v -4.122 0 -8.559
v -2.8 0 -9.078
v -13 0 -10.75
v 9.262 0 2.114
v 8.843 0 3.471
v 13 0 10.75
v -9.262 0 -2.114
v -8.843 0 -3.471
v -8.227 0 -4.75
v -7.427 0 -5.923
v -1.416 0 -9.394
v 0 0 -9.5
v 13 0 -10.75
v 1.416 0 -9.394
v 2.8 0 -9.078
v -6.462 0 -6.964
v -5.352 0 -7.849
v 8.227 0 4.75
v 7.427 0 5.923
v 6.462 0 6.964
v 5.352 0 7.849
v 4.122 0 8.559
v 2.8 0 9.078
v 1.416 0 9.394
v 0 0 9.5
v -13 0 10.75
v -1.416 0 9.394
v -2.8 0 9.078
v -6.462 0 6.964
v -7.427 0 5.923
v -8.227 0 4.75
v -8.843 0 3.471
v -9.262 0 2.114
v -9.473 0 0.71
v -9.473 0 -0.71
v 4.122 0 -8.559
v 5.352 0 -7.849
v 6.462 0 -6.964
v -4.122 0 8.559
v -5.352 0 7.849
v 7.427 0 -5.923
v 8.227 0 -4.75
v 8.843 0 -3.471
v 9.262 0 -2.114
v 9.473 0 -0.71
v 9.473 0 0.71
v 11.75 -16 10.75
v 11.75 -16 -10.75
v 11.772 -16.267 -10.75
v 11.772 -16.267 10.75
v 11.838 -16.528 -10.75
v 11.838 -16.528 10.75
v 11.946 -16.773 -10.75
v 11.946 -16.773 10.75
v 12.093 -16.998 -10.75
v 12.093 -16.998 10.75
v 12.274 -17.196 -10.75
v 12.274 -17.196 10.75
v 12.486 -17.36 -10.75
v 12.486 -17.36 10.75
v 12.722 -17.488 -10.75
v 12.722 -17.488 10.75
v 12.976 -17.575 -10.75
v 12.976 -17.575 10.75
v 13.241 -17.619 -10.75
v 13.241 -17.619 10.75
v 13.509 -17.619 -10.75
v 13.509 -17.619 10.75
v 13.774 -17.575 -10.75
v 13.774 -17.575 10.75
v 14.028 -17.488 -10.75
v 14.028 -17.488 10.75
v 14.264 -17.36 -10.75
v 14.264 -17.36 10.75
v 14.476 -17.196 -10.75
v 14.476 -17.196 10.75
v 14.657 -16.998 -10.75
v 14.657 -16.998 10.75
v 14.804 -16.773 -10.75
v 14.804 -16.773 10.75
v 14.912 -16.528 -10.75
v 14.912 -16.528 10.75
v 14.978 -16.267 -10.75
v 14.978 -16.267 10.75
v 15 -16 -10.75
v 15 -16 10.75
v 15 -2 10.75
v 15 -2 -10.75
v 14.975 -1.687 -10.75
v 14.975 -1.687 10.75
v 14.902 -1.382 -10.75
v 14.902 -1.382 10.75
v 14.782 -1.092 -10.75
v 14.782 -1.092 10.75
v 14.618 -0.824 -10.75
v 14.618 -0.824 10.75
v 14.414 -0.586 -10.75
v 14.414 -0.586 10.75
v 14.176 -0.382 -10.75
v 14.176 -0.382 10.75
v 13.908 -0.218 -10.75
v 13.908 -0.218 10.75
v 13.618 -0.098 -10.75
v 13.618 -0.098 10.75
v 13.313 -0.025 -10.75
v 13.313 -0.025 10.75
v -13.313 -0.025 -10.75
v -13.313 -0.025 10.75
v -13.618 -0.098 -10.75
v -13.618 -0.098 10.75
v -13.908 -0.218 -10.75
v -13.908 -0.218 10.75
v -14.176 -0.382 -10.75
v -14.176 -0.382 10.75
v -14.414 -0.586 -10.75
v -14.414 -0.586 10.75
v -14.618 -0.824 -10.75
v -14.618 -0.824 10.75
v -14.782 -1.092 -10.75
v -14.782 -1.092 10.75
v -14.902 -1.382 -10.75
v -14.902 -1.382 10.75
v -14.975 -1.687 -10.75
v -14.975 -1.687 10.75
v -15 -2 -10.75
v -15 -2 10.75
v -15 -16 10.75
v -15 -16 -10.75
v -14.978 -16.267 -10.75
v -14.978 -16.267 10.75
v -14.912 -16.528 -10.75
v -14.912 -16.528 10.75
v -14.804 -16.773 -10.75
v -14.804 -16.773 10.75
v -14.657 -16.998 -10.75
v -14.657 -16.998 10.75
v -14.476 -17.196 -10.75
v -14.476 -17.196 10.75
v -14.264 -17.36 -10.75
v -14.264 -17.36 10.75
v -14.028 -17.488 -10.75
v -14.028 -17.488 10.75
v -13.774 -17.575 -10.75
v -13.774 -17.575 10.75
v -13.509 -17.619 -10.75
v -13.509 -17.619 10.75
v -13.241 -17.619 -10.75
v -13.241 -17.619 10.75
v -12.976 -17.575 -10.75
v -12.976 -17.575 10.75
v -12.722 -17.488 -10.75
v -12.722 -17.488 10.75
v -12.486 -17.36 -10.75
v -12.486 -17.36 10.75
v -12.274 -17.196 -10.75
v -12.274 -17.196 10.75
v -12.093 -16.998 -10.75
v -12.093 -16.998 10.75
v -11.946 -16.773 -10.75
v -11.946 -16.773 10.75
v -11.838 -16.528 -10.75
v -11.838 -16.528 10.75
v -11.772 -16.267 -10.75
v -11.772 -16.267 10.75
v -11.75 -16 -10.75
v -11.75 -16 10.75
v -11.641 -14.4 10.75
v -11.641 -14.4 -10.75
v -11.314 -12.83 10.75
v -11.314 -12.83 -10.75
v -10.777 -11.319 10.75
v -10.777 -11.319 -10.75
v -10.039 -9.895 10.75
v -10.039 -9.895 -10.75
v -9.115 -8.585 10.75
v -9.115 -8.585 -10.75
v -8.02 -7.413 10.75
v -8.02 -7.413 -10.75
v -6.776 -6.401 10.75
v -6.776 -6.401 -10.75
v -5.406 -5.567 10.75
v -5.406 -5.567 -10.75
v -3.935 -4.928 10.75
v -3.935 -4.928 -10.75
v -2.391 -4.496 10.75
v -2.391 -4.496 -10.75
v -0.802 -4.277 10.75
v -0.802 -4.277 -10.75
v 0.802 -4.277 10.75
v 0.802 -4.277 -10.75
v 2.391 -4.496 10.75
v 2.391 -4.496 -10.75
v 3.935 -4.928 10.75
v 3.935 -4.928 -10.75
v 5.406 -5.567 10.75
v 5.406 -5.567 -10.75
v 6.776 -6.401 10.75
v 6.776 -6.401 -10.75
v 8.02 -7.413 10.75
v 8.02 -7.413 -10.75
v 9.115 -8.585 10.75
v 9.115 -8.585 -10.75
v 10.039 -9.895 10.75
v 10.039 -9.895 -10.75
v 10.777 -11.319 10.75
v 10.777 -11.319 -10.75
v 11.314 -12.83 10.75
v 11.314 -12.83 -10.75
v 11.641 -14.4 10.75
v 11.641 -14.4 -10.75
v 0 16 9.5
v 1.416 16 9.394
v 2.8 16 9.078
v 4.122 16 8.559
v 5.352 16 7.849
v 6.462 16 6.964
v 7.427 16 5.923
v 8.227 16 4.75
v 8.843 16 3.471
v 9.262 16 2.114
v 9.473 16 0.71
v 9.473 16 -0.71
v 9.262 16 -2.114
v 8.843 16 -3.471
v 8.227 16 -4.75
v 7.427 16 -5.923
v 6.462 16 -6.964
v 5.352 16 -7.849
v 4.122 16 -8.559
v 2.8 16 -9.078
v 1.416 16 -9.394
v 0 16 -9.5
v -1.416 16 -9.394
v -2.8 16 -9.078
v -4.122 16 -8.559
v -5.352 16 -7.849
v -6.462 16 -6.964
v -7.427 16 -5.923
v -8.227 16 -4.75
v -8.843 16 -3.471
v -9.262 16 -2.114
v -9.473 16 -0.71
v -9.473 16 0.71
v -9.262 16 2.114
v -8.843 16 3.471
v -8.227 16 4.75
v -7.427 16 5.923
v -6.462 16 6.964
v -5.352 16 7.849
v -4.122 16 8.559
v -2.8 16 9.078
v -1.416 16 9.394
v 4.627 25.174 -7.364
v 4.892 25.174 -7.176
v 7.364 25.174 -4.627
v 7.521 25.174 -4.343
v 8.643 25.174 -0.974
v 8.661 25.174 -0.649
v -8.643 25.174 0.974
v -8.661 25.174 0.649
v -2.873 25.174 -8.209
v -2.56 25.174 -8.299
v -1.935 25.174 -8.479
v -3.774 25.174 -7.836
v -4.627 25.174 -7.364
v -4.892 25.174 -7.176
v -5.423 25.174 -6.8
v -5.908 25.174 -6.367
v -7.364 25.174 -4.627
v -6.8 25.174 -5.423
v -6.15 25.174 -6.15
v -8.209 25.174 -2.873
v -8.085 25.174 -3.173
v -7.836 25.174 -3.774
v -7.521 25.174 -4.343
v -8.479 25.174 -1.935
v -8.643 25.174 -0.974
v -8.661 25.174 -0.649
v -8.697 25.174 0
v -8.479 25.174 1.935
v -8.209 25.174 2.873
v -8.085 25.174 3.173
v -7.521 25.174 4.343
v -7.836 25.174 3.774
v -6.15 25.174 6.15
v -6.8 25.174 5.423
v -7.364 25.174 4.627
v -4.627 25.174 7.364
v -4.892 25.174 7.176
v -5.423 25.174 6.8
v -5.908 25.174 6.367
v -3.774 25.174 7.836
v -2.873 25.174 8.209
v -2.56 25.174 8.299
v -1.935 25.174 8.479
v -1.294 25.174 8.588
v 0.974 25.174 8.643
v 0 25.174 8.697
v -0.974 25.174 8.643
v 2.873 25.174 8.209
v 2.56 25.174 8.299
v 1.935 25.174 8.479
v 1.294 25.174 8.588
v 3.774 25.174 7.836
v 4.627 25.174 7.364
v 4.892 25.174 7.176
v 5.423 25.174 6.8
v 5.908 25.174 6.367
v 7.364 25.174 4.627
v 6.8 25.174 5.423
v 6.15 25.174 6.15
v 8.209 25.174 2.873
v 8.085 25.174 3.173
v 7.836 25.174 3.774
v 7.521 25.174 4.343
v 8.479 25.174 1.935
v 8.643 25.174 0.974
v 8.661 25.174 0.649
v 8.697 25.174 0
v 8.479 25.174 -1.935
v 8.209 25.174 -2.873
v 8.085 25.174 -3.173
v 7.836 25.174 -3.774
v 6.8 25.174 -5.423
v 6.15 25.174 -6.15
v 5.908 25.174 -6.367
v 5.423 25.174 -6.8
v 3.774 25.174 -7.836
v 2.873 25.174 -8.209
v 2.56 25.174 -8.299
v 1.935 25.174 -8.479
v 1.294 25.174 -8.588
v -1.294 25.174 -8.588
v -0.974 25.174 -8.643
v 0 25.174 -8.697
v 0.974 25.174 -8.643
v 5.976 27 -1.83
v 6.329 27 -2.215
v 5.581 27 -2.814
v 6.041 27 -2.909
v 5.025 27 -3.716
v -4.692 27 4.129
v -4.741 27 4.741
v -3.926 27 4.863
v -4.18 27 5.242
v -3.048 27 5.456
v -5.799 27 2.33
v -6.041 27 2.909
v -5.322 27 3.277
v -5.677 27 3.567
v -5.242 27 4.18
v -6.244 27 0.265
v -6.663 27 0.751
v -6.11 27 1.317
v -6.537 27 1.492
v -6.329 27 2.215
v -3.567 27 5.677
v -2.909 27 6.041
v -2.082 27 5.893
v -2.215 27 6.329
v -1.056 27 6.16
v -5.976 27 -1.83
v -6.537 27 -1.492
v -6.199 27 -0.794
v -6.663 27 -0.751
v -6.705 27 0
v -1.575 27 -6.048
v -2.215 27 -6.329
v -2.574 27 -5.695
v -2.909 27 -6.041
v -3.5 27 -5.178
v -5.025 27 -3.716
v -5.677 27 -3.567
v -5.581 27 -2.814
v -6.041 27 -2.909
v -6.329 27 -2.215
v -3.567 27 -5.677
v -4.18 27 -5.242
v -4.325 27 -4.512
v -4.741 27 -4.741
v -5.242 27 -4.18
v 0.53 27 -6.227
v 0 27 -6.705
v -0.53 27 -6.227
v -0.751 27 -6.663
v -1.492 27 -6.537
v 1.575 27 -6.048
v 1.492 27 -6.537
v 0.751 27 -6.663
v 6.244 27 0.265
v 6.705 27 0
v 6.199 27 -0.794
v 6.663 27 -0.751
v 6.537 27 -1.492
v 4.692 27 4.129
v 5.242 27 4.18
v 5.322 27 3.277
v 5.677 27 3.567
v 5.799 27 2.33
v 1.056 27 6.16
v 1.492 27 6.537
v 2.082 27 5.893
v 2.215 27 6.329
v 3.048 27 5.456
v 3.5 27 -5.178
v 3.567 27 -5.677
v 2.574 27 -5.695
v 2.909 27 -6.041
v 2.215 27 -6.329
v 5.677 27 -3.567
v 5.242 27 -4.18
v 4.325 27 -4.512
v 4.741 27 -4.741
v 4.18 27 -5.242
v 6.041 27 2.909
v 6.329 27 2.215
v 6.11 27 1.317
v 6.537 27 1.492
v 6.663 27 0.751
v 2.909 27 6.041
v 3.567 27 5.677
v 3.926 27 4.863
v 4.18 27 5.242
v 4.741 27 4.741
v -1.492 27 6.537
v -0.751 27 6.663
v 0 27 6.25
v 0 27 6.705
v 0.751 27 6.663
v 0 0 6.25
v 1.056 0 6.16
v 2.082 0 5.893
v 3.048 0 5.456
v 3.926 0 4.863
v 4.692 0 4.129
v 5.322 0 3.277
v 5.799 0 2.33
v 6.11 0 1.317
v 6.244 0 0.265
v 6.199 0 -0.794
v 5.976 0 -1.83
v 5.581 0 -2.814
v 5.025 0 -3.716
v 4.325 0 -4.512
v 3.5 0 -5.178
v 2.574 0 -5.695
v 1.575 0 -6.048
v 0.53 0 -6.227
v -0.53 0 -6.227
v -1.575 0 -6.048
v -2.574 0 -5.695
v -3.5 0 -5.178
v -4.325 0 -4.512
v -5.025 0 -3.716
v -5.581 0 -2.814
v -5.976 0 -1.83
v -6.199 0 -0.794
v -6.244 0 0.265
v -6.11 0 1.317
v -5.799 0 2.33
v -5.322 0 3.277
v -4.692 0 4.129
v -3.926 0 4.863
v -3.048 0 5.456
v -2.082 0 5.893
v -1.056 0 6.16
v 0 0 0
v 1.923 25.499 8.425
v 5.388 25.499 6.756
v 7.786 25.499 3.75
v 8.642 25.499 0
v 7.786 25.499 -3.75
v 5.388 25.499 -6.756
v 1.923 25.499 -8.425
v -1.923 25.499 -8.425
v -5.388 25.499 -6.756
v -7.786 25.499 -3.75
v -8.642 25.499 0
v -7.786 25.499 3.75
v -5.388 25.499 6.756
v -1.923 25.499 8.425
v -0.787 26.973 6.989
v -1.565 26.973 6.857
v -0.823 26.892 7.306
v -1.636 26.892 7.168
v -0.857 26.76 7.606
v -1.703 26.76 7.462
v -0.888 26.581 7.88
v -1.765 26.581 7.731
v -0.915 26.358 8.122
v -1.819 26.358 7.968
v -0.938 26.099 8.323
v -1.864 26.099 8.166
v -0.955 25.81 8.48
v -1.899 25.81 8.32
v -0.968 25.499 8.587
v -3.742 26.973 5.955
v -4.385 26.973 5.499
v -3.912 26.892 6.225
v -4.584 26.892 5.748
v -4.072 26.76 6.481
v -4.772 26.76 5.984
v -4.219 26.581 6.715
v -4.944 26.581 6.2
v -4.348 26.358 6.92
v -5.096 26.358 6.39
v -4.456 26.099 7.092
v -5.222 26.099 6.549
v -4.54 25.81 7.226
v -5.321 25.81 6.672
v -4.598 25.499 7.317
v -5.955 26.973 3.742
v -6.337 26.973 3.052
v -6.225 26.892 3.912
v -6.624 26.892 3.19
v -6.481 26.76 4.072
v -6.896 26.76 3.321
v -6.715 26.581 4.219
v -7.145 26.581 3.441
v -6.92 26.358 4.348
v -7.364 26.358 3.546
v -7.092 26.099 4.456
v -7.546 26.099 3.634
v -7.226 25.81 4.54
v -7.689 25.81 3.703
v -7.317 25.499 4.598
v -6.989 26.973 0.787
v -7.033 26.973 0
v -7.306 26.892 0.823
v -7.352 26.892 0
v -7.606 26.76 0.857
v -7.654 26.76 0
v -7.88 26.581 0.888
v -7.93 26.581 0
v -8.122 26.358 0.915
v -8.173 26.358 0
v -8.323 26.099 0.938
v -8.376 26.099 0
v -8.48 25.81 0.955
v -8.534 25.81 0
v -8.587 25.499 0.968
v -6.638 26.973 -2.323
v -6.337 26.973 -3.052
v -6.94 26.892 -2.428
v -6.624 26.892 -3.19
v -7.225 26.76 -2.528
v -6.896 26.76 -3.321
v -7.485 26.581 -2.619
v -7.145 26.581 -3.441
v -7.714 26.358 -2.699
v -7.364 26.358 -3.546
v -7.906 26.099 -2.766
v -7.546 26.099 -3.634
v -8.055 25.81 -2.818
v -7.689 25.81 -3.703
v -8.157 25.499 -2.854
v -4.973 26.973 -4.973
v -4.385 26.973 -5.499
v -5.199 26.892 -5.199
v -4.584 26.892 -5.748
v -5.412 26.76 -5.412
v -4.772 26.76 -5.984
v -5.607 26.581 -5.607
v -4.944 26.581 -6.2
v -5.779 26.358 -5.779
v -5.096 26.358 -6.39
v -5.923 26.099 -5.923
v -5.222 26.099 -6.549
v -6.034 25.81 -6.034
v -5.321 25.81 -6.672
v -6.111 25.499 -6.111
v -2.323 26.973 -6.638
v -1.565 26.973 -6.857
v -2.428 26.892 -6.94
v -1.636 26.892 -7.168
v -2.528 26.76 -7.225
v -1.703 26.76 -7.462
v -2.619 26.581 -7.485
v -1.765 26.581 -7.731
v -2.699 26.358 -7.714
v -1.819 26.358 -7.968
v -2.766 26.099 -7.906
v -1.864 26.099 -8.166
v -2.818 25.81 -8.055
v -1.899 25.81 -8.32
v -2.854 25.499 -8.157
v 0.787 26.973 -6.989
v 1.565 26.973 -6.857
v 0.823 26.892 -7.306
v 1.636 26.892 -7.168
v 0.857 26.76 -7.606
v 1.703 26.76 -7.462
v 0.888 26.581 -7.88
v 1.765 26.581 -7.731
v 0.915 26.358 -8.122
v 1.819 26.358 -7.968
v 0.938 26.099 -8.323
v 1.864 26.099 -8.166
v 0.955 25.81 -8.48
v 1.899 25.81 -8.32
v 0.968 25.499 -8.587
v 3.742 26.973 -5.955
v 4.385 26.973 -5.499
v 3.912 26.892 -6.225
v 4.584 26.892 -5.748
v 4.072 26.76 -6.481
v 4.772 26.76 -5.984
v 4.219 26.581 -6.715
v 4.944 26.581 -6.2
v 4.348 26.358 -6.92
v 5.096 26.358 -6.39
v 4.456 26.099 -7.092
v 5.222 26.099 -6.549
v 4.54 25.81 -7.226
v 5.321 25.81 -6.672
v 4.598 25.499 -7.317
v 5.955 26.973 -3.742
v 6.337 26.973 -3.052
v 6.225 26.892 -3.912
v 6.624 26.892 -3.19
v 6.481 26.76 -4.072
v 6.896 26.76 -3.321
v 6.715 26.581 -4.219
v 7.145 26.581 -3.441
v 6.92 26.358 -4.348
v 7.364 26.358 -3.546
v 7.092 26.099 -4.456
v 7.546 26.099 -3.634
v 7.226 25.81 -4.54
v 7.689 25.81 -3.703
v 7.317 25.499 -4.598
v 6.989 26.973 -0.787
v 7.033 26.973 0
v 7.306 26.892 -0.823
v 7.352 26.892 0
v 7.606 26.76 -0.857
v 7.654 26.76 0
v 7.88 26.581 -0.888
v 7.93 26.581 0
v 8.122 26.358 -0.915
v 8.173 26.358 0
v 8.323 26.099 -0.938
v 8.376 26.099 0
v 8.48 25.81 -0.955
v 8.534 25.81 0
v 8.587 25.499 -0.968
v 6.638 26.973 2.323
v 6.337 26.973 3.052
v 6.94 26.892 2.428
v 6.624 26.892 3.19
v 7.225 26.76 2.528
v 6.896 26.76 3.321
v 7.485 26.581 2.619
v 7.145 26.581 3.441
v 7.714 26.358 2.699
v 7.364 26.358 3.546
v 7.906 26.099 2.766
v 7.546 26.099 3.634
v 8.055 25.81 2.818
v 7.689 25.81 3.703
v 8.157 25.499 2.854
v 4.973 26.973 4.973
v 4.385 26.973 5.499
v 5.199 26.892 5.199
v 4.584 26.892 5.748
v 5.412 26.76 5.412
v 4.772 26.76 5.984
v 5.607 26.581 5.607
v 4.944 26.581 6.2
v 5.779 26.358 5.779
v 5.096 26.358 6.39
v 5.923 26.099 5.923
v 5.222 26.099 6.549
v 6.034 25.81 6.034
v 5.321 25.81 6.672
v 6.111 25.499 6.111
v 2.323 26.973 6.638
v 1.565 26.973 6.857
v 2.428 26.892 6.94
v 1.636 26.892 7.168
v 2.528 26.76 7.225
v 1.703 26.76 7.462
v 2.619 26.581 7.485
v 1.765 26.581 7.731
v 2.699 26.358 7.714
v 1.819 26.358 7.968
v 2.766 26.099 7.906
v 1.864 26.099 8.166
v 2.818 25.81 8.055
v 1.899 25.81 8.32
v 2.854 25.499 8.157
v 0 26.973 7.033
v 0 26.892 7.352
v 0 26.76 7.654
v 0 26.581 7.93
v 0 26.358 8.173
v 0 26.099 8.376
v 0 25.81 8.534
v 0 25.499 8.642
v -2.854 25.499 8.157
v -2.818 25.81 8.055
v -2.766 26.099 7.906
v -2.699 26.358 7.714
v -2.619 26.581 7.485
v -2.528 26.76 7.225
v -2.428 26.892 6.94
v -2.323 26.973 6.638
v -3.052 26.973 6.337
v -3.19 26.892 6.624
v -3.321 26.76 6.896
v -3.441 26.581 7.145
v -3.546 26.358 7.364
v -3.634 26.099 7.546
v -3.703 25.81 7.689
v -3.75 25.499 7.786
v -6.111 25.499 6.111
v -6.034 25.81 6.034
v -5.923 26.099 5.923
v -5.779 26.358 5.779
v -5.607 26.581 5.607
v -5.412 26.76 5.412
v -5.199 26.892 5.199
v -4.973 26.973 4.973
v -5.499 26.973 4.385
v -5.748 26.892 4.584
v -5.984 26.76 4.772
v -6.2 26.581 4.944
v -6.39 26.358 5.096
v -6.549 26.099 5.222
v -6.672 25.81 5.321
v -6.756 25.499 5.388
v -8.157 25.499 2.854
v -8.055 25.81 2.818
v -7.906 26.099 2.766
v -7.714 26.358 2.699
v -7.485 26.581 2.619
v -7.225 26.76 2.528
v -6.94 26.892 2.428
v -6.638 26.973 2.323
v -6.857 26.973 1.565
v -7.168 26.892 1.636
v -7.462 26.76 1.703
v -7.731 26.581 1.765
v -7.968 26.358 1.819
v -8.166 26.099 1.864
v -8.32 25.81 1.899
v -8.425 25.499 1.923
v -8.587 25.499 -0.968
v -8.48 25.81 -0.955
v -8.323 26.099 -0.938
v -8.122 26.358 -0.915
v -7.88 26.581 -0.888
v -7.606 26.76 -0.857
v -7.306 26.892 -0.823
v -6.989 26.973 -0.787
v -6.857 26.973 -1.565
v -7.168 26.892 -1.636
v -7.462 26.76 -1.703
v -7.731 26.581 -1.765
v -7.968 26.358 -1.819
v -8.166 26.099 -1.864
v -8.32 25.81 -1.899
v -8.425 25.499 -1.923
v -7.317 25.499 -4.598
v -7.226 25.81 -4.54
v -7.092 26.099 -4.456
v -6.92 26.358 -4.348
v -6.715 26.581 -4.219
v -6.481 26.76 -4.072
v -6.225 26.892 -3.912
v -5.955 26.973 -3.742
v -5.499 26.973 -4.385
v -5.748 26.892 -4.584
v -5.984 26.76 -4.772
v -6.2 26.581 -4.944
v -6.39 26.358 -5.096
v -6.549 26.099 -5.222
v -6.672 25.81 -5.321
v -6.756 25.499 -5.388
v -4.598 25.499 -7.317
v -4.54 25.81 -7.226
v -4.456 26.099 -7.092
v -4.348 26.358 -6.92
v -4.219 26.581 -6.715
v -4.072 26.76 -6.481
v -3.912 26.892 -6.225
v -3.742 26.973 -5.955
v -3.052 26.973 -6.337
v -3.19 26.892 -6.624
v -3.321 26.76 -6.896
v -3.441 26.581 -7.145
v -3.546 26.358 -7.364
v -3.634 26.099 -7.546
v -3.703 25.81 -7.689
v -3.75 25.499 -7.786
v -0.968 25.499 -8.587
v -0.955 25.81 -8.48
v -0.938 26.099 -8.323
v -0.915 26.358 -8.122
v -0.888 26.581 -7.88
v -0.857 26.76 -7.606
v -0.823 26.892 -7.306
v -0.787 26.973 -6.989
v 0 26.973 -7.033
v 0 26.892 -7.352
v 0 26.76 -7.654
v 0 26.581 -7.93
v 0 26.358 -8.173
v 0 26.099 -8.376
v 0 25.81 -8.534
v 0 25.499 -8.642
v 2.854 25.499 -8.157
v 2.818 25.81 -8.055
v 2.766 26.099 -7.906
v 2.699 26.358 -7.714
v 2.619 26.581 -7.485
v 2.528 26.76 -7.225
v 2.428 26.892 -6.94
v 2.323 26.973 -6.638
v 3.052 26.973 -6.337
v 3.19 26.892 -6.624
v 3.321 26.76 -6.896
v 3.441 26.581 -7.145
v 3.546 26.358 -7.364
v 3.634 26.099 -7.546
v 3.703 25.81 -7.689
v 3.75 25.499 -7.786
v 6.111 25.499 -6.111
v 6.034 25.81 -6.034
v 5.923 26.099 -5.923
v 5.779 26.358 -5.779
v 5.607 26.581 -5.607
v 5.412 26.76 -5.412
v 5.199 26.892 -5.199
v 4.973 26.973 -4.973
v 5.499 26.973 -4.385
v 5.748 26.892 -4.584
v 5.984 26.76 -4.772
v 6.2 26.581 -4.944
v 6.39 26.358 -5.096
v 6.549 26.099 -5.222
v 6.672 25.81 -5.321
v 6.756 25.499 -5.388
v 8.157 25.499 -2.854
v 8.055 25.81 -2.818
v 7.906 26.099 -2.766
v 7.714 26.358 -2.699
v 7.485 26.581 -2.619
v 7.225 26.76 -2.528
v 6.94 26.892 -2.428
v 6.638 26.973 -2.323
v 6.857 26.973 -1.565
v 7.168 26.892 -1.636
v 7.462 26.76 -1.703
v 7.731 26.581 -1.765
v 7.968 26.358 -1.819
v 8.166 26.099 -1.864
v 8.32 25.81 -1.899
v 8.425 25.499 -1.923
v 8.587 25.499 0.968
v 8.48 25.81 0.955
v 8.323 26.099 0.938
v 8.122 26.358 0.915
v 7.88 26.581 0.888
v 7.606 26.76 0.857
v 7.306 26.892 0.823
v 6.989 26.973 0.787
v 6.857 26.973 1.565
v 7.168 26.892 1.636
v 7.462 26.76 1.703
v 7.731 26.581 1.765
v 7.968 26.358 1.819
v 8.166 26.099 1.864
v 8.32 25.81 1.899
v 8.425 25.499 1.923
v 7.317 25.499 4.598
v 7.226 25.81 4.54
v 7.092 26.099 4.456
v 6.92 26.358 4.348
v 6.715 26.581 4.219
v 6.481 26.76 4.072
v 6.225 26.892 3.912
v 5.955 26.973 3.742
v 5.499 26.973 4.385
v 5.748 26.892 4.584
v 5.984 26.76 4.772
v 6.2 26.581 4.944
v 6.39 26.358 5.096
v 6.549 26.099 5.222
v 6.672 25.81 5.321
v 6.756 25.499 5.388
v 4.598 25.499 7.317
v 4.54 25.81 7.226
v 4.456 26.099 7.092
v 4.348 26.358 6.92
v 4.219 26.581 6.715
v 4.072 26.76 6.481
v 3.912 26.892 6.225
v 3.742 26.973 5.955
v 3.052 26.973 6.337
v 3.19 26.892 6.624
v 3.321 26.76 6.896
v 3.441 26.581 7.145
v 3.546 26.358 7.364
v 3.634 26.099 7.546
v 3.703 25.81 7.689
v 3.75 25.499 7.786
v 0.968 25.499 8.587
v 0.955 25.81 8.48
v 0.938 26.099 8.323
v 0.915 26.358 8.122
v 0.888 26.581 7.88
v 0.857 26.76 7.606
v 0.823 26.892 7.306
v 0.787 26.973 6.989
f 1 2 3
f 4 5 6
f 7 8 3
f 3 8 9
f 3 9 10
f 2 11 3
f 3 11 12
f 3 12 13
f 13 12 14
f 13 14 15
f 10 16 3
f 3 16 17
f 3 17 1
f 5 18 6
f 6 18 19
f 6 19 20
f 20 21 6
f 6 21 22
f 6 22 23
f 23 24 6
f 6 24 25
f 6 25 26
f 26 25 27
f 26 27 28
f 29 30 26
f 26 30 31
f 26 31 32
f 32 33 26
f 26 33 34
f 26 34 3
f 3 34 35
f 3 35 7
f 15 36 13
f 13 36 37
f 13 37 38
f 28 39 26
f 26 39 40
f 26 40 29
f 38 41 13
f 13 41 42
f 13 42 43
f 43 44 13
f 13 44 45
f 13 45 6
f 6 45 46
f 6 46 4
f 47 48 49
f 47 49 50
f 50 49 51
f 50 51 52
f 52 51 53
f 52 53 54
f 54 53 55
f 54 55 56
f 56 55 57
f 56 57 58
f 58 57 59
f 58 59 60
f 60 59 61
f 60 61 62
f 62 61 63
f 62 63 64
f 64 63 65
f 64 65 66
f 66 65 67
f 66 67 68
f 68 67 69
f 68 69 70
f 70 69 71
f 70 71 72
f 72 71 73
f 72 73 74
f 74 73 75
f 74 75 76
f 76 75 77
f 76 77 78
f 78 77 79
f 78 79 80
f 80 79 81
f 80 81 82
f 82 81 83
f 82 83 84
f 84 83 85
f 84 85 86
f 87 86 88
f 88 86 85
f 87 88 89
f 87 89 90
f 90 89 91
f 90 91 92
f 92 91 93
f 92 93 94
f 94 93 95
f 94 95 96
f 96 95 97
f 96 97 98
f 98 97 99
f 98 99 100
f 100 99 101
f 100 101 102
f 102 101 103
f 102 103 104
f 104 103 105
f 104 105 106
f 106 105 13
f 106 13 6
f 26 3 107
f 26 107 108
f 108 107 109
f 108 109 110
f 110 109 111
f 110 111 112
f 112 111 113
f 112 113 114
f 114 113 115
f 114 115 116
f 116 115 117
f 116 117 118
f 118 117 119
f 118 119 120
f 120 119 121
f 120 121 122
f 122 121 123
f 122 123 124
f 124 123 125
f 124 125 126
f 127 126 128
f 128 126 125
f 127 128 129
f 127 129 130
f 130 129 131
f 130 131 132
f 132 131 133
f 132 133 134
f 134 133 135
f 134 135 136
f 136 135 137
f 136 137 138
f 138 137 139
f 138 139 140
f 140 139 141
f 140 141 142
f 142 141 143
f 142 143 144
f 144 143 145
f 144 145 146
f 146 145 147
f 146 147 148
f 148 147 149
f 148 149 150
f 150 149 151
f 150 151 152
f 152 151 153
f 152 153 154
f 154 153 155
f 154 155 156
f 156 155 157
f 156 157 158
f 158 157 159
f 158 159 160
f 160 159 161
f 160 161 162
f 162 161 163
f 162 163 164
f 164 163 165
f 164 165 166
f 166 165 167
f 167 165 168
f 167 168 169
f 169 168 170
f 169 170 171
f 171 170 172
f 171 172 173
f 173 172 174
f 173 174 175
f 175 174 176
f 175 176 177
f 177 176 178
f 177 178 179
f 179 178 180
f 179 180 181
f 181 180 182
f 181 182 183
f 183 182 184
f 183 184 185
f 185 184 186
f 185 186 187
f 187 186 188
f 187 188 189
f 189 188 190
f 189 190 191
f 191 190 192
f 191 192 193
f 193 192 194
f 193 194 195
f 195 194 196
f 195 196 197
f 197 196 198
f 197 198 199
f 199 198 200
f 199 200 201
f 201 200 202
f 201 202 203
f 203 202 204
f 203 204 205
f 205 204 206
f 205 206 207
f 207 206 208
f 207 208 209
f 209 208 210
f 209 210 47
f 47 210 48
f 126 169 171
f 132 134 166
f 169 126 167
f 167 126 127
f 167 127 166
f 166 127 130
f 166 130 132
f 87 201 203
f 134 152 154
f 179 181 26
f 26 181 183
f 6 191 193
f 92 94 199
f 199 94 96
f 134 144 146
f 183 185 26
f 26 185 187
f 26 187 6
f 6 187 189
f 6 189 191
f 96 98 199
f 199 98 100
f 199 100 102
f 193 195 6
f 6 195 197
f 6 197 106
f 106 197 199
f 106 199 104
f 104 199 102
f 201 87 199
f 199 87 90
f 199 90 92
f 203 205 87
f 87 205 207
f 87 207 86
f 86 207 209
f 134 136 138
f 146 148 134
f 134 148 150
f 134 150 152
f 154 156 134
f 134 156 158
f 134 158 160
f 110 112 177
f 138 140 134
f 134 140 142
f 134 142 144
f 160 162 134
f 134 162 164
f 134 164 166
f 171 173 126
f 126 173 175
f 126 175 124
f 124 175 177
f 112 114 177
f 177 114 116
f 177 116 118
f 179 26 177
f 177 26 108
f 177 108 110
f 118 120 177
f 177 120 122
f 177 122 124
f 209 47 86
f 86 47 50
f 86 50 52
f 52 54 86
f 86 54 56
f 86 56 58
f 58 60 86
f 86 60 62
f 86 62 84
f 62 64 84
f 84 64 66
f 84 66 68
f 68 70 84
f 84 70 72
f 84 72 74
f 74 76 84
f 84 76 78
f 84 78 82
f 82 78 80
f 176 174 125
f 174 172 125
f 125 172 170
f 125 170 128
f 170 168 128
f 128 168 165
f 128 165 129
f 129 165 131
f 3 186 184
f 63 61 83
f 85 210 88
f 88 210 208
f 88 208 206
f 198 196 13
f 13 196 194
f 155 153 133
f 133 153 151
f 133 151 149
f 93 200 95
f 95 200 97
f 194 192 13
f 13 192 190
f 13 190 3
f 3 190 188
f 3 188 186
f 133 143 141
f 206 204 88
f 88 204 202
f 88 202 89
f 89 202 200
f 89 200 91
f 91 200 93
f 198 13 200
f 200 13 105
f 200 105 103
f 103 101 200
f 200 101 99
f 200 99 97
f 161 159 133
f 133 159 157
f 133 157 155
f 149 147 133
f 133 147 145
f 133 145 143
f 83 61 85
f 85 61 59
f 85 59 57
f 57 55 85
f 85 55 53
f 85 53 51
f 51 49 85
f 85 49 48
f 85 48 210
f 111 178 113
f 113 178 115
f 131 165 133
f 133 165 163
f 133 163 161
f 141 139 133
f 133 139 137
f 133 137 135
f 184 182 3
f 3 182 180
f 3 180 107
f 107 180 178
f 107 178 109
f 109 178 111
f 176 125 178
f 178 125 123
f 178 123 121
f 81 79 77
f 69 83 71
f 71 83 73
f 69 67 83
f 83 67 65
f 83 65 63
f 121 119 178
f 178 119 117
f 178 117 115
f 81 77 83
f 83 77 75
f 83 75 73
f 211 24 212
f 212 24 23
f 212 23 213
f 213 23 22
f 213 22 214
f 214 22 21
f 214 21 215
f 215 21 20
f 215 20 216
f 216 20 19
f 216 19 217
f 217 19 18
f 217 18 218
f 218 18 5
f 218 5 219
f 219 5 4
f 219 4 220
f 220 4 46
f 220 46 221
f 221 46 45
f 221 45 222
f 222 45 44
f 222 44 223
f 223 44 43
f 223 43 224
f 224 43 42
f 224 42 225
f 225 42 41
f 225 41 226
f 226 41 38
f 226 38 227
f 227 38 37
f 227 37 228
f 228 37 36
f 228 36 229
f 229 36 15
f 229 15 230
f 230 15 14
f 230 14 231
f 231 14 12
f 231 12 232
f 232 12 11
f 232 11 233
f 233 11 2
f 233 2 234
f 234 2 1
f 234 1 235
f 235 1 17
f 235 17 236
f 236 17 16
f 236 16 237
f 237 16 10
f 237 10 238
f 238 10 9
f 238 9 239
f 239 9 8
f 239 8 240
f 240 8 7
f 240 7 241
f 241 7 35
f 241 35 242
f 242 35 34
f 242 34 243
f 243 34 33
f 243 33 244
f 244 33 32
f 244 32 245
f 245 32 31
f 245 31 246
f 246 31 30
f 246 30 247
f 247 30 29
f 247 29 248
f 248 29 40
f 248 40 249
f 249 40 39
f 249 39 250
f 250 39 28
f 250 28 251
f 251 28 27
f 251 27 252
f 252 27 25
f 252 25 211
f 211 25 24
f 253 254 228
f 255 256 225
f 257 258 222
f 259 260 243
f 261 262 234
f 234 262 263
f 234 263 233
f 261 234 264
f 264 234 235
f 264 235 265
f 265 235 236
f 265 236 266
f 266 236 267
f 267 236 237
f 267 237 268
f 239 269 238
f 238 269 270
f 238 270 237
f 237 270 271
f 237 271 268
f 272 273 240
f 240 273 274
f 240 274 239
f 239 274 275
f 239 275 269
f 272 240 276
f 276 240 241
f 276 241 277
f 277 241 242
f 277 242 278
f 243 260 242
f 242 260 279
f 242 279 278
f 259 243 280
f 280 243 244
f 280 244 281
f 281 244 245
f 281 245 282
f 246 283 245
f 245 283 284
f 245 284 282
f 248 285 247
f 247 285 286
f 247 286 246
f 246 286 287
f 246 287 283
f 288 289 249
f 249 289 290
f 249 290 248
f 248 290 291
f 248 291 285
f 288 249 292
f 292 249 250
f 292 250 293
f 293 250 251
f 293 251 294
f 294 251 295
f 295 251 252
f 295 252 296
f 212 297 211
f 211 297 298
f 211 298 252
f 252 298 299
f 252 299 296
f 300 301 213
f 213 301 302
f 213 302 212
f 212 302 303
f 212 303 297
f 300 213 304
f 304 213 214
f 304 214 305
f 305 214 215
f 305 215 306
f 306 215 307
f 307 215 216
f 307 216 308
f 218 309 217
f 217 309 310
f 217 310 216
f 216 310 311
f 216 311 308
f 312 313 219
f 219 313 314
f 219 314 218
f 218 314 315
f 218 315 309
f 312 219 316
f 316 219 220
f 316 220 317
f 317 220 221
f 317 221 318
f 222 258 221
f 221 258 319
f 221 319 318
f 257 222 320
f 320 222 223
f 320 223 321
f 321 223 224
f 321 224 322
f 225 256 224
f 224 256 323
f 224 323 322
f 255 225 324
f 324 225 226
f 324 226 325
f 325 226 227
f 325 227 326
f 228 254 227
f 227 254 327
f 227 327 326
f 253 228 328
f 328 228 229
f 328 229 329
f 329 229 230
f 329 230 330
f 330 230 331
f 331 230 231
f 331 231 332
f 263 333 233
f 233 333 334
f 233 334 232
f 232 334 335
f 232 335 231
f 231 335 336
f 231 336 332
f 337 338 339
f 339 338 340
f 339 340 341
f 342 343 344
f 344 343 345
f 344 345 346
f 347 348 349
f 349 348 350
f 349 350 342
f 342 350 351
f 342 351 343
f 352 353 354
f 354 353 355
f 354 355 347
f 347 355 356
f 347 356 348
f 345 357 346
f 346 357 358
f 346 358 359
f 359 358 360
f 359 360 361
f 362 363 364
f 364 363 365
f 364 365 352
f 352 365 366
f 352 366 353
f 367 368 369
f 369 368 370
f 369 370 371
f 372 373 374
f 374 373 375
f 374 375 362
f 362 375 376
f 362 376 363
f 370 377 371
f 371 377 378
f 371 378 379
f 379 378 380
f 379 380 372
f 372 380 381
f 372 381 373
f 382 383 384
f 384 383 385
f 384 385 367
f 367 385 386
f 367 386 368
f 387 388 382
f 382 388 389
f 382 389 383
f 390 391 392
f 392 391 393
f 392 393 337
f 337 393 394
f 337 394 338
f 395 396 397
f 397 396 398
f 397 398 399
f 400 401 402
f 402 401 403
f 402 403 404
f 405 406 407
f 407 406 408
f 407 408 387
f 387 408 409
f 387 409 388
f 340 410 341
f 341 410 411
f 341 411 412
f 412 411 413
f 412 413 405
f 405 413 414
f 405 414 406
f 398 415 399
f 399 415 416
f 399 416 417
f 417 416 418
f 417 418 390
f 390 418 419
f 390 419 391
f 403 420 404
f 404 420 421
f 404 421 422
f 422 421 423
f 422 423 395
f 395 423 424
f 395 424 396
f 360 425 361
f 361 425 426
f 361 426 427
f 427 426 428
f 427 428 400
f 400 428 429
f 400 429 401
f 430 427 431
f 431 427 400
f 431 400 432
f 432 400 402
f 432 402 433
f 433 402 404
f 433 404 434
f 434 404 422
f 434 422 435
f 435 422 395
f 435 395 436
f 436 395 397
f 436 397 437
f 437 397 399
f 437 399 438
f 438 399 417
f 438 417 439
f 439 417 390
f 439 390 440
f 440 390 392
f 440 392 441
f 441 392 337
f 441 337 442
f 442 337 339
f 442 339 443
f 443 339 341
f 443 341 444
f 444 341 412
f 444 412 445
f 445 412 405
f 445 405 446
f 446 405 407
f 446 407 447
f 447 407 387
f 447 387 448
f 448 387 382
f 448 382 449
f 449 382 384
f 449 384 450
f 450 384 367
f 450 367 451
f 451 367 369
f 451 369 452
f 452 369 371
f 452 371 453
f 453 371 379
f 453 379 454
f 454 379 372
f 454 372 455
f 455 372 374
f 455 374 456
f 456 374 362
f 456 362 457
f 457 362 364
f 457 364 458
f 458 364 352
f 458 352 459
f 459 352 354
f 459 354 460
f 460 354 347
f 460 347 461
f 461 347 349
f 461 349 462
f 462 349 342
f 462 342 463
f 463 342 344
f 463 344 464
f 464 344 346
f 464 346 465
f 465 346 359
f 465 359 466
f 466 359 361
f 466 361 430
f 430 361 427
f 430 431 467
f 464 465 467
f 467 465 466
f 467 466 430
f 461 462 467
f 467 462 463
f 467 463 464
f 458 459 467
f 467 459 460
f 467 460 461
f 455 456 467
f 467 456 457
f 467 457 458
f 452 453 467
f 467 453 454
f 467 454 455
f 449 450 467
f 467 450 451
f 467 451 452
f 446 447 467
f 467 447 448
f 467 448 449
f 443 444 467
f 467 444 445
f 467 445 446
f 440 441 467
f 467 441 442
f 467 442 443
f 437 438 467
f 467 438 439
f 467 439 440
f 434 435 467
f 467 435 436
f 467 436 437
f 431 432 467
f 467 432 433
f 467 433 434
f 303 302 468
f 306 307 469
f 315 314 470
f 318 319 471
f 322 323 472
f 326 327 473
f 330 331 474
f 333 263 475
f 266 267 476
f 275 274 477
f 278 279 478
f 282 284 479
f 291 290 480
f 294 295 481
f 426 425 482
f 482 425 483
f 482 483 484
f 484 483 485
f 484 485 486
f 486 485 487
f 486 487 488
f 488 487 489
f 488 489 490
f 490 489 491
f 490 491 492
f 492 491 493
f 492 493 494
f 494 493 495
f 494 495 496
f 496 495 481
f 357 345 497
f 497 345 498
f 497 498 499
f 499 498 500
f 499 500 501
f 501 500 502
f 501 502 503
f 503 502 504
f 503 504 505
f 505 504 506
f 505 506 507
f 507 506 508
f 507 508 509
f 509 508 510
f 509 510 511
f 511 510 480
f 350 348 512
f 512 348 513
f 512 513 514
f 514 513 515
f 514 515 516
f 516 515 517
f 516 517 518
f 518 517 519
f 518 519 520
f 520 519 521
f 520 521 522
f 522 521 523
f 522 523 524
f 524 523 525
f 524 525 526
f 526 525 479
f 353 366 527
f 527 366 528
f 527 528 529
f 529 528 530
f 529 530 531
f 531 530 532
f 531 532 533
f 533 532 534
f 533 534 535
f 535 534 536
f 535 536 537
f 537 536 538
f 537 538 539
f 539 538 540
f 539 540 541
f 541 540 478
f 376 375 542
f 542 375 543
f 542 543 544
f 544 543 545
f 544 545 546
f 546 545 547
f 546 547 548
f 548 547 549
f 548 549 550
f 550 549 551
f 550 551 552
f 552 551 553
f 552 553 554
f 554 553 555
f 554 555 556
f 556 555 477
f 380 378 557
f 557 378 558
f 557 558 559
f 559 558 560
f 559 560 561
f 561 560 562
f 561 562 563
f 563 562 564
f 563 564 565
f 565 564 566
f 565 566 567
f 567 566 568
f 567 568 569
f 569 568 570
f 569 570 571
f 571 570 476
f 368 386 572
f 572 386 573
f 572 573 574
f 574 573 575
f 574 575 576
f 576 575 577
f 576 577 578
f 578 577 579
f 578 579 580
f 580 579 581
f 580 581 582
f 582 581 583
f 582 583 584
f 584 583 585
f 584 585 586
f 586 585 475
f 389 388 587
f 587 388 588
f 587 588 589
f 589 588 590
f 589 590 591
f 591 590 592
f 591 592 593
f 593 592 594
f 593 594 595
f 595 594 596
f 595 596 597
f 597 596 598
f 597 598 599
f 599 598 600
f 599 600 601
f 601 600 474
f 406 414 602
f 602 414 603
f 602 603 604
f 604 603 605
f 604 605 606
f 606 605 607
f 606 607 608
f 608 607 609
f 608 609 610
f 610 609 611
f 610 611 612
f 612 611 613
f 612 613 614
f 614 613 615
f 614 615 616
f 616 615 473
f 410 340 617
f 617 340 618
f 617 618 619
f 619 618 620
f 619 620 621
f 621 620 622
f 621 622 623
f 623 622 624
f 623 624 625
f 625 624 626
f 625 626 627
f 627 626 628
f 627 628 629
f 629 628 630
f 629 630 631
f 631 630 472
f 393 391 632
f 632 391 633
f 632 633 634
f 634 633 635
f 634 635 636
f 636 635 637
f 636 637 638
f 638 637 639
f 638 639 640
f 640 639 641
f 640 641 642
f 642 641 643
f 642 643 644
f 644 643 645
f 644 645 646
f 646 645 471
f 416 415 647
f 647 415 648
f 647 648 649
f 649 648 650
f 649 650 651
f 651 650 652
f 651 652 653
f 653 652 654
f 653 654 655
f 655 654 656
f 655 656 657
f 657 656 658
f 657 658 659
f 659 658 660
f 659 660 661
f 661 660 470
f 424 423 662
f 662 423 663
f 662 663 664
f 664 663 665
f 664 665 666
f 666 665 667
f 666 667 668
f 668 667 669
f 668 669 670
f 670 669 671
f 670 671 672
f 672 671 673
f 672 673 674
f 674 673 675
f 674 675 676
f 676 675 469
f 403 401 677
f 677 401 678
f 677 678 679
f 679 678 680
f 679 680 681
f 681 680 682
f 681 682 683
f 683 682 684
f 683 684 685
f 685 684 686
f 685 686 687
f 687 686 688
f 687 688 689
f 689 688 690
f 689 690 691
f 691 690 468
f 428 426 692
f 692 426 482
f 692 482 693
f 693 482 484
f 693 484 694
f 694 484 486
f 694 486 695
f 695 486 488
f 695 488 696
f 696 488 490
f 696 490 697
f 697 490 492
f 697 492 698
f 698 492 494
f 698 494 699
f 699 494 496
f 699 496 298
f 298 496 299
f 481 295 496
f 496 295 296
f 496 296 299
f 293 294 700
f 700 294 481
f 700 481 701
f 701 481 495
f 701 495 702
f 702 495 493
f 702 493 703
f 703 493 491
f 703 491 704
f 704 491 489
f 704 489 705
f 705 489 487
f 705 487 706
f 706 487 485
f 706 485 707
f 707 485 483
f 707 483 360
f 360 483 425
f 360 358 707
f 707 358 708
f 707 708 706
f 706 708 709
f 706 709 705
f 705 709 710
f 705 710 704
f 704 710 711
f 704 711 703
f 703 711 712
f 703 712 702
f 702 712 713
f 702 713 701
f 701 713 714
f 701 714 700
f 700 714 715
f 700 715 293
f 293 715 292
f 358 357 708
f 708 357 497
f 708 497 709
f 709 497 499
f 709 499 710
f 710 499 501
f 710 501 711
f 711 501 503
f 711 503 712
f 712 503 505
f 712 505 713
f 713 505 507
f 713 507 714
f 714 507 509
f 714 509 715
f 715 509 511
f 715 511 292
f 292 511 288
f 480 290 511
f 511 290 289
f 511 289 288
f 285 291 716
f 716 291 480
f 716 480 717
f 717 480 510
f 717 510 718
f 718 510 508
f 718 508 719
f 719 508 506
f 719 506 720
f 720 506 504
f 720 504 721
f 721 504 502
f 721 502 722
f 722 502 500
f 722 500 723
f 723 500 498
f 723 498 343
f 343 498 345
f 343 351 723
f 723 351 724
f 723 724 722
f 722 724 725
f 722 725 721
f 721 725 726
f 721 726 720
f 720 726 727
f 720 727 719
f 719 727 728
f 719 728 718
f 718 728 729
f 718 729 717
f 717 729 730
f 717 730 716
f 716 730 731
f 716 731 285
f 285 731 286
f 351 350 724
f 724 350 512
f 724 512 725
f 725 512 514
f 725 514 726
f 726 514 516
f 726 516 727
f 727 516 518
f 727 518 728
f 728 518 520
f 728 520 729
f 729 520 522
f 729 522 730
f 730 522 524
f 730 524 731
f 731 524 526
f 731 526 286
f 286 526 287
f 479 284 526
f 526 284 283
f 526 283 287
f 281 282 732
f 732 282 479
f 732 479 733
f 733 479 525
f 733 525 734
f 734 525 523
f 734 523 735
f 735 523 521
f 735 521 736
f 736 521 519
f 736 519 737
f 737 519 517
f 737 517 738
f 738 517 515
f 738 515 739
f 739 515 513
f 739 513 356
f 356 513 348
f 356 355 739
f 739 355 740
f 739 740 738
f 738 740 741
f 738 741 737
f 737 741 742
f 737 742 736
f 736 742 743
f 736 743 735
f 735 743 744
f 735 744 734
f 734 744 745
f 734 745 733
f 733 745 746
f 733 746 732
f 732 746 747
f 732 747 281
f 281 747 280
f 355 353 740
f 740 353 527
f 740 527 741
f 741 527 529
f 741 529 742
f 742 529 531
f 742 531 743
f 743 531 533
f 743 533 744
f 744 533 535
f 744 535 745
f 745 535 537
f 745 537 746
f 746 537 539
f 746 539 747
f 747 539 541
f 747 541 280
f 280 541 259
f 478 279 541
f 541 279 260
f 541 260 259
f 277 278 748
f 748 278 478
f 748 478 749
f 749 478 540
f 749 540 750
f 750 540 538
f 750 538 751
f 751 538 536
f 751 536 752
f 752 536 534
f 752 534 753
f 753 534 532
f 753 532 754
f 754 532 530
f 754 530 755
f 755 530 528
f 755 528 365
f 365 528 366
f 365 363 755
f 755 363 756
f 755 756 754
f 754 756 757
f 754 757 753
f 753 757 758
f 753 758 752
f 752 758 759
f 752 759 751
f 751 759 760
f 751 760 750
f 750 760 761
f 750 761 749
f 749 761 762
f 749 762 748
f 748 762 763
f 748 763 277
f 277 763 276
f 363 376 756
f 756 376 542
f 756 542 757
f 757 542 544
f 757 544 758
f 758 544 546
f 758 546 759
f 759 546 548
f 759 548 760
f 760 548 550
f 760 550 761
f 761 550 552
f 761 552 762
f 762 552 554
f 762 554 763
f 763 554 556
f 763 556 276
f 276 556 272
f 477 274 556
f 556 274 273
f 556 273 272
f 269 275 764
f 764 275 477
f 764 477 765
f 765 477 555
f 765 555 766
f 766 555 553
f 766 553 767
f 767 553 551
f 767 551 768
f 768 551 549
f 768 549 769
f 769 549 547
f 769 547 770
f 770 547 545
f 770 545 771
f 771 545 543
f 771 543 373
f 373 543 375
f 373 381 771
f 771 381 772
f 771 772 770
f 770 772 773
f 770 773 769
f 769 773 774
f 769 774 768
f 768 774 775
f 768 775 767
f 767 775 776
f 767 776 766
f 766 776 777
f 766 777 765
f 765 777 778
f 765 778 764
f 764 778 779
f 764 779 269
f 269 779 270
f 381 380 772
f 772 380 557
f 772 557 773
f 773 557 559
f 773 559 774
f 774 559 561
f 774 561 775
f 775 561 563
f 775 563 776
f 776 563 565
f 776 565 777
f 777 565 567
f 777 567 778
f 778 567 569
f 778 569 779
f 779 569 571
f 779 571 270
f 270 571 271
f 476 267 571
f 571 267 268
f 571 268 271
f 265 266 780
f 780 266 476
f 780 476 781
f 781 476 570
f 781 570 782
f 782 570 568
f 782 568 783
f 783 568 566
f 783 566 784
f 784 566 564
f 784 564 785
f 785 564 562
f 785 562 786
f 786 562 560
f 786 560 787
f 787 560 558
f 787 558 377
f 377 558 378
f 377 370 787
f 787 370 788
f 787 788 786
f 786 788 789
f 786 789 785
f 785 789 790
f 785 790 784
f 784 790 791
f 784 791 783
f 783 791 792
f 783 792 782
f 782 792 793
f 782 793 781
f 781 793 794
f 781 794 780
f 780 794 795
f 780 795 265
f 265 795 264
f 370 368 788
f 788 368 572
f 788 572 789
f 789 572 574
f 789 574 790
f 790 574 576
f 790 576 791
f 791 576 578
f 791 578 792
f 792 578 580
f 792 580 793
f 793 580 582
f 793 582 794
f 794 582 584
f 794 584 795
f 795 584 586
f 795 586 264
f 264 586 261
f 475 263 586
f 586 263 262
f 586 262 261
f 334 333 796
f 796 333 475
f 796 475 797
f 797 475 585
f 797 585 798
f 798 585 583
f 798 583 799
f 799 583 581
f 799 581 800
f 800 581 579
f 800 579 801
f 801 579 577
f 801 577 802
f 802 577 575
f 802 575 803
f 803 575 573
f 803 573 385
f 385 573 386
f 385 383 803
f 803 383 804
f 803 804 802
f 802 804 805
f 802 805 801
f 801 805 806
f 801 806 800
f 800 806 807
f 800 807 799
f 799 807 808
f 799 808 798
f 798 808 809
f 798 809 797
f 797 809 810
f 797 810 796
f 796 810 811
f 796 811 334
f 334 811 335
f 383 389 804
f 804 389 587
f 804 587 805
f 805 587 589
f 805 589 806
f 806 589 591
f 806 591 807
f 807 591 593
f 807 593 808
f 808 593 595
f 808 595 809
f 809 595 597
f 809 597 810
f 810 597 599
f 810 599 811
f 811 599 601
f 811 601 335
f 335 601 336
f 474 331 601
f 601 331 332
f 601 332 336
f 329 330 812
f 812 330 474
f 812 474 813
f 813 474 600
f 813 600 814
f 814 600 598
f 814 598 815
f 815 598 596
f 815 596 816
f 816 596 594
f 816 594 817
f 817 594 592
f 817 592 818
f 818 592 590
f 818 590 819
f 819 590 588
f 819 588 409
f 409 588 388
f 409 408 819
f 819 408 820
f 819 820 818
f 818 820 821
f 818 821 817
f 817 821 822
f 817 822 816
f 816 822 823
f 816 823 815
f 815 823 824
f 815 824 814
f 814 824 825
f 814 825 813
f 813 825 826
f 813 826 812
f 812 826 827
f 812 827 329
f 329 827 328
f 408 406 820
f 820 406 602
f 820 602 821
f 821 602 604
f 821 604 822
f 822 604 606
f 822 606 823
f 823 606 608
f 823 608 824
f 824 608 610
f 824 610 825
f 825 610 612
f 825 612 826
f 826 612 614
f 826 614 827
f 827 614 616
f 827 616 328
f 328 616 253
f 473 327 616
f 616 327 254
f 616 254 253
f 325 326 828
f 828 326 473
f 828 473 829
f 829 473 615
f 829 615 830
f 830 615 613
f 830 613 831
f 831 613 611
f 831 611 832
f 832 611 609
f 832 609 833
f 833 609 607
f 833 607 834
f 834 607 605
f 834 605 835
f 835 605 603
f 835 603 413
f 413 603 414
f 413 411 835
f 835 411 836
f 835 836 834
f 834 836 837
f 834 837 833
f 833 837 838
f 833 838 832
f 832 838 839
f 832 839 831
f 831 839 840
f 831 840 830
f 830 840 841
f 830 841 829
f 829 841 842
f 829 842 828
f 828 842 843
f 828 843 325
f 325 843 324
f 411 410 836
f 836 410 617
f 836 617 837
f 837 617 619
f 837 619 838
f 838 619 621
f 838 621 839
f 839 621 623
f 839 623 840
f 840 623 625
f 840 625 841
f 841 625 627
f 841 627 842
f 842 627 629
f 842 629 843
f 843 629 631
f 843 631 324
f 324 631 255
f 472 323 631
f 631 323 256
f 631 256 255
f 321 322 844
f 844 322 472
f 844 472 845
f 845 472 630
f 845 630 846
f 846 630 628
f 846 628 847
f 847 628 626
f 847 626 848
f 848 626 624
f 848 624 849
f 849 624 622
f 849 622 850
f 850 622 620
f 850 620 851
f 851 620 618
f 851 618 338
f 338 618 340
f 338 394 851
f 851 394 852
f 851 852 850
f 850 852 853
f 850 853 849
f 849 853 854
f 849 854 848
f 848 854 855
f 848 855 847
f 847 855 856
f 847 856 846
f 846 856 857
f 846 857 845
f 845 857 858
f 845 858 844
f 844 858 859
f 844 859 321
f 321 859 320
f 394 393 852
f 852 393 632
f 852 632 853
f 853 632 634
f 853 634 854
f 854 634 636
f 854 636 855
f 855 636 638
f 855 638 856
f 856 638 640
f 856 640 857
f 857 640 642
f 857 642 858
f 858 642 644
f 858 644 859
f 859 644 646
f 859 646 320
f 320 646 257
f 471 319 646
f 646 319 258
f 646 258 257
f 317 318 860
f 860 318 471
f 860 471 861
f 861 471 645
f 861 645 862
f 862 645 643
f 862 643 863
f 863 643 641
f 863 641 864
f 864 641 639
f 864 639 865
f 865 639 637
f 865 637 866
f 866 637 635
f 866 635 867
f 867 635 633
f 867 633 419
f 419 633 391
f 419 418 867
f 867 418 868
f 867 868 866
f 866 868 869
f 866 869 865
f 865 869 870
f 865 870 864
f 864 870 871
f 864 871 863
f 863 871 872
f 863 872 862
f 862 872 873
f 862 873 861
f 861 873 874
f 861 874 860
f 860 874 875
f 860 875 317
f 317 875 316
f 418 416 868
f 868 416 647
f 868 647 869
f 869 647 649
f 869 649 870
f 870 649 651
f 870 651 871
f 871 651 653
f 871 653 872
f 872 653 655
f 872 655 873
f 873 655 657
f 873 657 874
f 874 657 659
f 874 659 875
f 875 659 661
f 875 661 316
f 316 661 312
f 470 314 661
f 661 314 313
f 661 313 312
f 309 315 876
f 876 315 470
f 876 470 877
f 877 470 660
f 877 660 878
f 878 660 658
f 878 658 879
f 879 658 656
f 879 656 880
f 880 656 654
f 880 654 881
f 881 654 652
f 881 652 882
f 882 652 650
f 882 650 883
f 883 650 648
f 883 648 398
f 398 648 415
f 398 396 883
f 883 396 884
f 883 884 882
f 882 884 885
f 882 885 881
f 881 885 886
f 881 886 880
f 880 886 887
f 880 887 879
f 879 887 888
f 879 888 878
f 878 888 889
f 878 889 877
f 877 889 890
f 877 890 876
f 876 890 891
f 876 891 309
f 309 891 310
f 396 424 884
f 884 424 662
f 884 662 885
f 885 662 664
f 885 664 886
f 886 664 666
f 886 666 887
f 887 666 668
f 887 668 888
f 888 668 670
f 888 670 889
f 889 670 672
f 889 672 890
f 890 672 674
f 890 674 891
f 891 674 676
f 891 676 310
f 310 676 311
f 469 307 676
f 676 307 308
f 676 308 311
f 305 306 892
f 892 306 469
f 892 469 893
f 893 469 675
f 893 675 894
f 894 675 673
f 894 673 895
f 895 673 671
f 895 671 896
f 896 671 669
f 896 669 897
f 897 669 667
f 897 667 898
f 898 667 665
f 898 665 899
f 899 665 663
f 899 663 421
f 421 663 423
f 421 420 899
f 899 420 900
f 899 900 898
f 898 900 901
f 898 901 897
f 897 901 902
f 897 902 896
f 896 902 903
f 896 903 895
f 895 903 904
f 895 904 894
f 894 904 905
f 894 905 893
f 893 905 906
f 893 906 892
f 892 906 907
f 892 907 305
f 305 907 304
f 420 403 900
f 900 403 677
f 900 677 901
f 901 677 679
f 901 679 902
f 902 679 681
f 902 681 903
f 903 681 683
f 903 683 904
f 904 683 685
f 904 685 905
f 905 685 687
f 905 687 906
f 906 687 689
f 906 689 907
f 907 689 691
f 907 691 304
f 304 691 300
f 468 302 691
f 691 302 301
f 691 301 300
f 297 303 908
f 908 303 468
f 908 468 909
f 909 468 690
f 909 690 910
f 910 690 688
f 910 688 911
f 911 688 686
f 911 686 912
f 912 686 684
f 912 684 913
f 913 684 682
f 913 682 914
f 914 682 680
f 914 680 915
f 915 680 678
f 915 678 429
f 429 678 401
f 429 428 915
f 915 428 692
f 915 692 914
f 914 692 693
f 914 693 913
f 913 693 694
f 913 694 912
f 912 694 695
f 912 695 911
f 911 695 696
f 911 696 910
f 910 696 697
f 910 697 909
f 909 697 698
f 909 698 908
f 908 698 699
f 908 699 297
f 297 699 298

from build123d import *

# Parameters (mm, degrees)
BOSS_EXTRUDE1_DEPTH = 10.75
FILLET2_R           = 2


with BuildPart() as part:
    # Sketch1 → Boss-Extrude1 (new, symmetric)
    with BuildSketch(Plane.XY):
        with BuildLine():
            Line((-13, 0), (13, 0))
            ThreePointArc((13, 0), (14.414213562, -0.585786438), (15, -2))
            Line((15, -2), (15, -16))
            ThreePointArc((15, -16), (13.375, -17.625), (11.75, -16))
            ThreePointArc((11.75, -16), (0, -4.25), (-11.75, -16))
            ThreePointArc((-11.75, -16), (-13.375, -17.625), (-15, -16))
            Line((-15, -16), (-15, -2))
            ThreePointArc((-15, -2), (-14.414213562, -0.585786438), (-13, 0))
        make_face()
    extrude(amount=BOSS_EXTRUDE1_DEPTH, both=True)

    # Sketch3 → Revolve1 (revolve)
    with BuildSketch(Plane.XY, mode=Mode.PRIVATE) as revolve1_sk:
        Polygon((-9.5, 0), (-9.5, 16), (-8.537624701, 27), (-6.25, 27), (-6.25, 0), align=None)
    revolve(revolve1_sk.sketch.rotate(Axis((0, 13.186129828, 0), (0, -1, 0)), 270), axis=Axis((0, 13.186129828, 0), (0, -1, 0)))

    # Fillet2
    fillet2_edges = [part.edges().sort_by_distance(p)[0] for p in [
        (0, 27, -8.537624701),
    ]]
    fillet(fillet2_edges, radius=FILLET2_R)


solid = part.part
